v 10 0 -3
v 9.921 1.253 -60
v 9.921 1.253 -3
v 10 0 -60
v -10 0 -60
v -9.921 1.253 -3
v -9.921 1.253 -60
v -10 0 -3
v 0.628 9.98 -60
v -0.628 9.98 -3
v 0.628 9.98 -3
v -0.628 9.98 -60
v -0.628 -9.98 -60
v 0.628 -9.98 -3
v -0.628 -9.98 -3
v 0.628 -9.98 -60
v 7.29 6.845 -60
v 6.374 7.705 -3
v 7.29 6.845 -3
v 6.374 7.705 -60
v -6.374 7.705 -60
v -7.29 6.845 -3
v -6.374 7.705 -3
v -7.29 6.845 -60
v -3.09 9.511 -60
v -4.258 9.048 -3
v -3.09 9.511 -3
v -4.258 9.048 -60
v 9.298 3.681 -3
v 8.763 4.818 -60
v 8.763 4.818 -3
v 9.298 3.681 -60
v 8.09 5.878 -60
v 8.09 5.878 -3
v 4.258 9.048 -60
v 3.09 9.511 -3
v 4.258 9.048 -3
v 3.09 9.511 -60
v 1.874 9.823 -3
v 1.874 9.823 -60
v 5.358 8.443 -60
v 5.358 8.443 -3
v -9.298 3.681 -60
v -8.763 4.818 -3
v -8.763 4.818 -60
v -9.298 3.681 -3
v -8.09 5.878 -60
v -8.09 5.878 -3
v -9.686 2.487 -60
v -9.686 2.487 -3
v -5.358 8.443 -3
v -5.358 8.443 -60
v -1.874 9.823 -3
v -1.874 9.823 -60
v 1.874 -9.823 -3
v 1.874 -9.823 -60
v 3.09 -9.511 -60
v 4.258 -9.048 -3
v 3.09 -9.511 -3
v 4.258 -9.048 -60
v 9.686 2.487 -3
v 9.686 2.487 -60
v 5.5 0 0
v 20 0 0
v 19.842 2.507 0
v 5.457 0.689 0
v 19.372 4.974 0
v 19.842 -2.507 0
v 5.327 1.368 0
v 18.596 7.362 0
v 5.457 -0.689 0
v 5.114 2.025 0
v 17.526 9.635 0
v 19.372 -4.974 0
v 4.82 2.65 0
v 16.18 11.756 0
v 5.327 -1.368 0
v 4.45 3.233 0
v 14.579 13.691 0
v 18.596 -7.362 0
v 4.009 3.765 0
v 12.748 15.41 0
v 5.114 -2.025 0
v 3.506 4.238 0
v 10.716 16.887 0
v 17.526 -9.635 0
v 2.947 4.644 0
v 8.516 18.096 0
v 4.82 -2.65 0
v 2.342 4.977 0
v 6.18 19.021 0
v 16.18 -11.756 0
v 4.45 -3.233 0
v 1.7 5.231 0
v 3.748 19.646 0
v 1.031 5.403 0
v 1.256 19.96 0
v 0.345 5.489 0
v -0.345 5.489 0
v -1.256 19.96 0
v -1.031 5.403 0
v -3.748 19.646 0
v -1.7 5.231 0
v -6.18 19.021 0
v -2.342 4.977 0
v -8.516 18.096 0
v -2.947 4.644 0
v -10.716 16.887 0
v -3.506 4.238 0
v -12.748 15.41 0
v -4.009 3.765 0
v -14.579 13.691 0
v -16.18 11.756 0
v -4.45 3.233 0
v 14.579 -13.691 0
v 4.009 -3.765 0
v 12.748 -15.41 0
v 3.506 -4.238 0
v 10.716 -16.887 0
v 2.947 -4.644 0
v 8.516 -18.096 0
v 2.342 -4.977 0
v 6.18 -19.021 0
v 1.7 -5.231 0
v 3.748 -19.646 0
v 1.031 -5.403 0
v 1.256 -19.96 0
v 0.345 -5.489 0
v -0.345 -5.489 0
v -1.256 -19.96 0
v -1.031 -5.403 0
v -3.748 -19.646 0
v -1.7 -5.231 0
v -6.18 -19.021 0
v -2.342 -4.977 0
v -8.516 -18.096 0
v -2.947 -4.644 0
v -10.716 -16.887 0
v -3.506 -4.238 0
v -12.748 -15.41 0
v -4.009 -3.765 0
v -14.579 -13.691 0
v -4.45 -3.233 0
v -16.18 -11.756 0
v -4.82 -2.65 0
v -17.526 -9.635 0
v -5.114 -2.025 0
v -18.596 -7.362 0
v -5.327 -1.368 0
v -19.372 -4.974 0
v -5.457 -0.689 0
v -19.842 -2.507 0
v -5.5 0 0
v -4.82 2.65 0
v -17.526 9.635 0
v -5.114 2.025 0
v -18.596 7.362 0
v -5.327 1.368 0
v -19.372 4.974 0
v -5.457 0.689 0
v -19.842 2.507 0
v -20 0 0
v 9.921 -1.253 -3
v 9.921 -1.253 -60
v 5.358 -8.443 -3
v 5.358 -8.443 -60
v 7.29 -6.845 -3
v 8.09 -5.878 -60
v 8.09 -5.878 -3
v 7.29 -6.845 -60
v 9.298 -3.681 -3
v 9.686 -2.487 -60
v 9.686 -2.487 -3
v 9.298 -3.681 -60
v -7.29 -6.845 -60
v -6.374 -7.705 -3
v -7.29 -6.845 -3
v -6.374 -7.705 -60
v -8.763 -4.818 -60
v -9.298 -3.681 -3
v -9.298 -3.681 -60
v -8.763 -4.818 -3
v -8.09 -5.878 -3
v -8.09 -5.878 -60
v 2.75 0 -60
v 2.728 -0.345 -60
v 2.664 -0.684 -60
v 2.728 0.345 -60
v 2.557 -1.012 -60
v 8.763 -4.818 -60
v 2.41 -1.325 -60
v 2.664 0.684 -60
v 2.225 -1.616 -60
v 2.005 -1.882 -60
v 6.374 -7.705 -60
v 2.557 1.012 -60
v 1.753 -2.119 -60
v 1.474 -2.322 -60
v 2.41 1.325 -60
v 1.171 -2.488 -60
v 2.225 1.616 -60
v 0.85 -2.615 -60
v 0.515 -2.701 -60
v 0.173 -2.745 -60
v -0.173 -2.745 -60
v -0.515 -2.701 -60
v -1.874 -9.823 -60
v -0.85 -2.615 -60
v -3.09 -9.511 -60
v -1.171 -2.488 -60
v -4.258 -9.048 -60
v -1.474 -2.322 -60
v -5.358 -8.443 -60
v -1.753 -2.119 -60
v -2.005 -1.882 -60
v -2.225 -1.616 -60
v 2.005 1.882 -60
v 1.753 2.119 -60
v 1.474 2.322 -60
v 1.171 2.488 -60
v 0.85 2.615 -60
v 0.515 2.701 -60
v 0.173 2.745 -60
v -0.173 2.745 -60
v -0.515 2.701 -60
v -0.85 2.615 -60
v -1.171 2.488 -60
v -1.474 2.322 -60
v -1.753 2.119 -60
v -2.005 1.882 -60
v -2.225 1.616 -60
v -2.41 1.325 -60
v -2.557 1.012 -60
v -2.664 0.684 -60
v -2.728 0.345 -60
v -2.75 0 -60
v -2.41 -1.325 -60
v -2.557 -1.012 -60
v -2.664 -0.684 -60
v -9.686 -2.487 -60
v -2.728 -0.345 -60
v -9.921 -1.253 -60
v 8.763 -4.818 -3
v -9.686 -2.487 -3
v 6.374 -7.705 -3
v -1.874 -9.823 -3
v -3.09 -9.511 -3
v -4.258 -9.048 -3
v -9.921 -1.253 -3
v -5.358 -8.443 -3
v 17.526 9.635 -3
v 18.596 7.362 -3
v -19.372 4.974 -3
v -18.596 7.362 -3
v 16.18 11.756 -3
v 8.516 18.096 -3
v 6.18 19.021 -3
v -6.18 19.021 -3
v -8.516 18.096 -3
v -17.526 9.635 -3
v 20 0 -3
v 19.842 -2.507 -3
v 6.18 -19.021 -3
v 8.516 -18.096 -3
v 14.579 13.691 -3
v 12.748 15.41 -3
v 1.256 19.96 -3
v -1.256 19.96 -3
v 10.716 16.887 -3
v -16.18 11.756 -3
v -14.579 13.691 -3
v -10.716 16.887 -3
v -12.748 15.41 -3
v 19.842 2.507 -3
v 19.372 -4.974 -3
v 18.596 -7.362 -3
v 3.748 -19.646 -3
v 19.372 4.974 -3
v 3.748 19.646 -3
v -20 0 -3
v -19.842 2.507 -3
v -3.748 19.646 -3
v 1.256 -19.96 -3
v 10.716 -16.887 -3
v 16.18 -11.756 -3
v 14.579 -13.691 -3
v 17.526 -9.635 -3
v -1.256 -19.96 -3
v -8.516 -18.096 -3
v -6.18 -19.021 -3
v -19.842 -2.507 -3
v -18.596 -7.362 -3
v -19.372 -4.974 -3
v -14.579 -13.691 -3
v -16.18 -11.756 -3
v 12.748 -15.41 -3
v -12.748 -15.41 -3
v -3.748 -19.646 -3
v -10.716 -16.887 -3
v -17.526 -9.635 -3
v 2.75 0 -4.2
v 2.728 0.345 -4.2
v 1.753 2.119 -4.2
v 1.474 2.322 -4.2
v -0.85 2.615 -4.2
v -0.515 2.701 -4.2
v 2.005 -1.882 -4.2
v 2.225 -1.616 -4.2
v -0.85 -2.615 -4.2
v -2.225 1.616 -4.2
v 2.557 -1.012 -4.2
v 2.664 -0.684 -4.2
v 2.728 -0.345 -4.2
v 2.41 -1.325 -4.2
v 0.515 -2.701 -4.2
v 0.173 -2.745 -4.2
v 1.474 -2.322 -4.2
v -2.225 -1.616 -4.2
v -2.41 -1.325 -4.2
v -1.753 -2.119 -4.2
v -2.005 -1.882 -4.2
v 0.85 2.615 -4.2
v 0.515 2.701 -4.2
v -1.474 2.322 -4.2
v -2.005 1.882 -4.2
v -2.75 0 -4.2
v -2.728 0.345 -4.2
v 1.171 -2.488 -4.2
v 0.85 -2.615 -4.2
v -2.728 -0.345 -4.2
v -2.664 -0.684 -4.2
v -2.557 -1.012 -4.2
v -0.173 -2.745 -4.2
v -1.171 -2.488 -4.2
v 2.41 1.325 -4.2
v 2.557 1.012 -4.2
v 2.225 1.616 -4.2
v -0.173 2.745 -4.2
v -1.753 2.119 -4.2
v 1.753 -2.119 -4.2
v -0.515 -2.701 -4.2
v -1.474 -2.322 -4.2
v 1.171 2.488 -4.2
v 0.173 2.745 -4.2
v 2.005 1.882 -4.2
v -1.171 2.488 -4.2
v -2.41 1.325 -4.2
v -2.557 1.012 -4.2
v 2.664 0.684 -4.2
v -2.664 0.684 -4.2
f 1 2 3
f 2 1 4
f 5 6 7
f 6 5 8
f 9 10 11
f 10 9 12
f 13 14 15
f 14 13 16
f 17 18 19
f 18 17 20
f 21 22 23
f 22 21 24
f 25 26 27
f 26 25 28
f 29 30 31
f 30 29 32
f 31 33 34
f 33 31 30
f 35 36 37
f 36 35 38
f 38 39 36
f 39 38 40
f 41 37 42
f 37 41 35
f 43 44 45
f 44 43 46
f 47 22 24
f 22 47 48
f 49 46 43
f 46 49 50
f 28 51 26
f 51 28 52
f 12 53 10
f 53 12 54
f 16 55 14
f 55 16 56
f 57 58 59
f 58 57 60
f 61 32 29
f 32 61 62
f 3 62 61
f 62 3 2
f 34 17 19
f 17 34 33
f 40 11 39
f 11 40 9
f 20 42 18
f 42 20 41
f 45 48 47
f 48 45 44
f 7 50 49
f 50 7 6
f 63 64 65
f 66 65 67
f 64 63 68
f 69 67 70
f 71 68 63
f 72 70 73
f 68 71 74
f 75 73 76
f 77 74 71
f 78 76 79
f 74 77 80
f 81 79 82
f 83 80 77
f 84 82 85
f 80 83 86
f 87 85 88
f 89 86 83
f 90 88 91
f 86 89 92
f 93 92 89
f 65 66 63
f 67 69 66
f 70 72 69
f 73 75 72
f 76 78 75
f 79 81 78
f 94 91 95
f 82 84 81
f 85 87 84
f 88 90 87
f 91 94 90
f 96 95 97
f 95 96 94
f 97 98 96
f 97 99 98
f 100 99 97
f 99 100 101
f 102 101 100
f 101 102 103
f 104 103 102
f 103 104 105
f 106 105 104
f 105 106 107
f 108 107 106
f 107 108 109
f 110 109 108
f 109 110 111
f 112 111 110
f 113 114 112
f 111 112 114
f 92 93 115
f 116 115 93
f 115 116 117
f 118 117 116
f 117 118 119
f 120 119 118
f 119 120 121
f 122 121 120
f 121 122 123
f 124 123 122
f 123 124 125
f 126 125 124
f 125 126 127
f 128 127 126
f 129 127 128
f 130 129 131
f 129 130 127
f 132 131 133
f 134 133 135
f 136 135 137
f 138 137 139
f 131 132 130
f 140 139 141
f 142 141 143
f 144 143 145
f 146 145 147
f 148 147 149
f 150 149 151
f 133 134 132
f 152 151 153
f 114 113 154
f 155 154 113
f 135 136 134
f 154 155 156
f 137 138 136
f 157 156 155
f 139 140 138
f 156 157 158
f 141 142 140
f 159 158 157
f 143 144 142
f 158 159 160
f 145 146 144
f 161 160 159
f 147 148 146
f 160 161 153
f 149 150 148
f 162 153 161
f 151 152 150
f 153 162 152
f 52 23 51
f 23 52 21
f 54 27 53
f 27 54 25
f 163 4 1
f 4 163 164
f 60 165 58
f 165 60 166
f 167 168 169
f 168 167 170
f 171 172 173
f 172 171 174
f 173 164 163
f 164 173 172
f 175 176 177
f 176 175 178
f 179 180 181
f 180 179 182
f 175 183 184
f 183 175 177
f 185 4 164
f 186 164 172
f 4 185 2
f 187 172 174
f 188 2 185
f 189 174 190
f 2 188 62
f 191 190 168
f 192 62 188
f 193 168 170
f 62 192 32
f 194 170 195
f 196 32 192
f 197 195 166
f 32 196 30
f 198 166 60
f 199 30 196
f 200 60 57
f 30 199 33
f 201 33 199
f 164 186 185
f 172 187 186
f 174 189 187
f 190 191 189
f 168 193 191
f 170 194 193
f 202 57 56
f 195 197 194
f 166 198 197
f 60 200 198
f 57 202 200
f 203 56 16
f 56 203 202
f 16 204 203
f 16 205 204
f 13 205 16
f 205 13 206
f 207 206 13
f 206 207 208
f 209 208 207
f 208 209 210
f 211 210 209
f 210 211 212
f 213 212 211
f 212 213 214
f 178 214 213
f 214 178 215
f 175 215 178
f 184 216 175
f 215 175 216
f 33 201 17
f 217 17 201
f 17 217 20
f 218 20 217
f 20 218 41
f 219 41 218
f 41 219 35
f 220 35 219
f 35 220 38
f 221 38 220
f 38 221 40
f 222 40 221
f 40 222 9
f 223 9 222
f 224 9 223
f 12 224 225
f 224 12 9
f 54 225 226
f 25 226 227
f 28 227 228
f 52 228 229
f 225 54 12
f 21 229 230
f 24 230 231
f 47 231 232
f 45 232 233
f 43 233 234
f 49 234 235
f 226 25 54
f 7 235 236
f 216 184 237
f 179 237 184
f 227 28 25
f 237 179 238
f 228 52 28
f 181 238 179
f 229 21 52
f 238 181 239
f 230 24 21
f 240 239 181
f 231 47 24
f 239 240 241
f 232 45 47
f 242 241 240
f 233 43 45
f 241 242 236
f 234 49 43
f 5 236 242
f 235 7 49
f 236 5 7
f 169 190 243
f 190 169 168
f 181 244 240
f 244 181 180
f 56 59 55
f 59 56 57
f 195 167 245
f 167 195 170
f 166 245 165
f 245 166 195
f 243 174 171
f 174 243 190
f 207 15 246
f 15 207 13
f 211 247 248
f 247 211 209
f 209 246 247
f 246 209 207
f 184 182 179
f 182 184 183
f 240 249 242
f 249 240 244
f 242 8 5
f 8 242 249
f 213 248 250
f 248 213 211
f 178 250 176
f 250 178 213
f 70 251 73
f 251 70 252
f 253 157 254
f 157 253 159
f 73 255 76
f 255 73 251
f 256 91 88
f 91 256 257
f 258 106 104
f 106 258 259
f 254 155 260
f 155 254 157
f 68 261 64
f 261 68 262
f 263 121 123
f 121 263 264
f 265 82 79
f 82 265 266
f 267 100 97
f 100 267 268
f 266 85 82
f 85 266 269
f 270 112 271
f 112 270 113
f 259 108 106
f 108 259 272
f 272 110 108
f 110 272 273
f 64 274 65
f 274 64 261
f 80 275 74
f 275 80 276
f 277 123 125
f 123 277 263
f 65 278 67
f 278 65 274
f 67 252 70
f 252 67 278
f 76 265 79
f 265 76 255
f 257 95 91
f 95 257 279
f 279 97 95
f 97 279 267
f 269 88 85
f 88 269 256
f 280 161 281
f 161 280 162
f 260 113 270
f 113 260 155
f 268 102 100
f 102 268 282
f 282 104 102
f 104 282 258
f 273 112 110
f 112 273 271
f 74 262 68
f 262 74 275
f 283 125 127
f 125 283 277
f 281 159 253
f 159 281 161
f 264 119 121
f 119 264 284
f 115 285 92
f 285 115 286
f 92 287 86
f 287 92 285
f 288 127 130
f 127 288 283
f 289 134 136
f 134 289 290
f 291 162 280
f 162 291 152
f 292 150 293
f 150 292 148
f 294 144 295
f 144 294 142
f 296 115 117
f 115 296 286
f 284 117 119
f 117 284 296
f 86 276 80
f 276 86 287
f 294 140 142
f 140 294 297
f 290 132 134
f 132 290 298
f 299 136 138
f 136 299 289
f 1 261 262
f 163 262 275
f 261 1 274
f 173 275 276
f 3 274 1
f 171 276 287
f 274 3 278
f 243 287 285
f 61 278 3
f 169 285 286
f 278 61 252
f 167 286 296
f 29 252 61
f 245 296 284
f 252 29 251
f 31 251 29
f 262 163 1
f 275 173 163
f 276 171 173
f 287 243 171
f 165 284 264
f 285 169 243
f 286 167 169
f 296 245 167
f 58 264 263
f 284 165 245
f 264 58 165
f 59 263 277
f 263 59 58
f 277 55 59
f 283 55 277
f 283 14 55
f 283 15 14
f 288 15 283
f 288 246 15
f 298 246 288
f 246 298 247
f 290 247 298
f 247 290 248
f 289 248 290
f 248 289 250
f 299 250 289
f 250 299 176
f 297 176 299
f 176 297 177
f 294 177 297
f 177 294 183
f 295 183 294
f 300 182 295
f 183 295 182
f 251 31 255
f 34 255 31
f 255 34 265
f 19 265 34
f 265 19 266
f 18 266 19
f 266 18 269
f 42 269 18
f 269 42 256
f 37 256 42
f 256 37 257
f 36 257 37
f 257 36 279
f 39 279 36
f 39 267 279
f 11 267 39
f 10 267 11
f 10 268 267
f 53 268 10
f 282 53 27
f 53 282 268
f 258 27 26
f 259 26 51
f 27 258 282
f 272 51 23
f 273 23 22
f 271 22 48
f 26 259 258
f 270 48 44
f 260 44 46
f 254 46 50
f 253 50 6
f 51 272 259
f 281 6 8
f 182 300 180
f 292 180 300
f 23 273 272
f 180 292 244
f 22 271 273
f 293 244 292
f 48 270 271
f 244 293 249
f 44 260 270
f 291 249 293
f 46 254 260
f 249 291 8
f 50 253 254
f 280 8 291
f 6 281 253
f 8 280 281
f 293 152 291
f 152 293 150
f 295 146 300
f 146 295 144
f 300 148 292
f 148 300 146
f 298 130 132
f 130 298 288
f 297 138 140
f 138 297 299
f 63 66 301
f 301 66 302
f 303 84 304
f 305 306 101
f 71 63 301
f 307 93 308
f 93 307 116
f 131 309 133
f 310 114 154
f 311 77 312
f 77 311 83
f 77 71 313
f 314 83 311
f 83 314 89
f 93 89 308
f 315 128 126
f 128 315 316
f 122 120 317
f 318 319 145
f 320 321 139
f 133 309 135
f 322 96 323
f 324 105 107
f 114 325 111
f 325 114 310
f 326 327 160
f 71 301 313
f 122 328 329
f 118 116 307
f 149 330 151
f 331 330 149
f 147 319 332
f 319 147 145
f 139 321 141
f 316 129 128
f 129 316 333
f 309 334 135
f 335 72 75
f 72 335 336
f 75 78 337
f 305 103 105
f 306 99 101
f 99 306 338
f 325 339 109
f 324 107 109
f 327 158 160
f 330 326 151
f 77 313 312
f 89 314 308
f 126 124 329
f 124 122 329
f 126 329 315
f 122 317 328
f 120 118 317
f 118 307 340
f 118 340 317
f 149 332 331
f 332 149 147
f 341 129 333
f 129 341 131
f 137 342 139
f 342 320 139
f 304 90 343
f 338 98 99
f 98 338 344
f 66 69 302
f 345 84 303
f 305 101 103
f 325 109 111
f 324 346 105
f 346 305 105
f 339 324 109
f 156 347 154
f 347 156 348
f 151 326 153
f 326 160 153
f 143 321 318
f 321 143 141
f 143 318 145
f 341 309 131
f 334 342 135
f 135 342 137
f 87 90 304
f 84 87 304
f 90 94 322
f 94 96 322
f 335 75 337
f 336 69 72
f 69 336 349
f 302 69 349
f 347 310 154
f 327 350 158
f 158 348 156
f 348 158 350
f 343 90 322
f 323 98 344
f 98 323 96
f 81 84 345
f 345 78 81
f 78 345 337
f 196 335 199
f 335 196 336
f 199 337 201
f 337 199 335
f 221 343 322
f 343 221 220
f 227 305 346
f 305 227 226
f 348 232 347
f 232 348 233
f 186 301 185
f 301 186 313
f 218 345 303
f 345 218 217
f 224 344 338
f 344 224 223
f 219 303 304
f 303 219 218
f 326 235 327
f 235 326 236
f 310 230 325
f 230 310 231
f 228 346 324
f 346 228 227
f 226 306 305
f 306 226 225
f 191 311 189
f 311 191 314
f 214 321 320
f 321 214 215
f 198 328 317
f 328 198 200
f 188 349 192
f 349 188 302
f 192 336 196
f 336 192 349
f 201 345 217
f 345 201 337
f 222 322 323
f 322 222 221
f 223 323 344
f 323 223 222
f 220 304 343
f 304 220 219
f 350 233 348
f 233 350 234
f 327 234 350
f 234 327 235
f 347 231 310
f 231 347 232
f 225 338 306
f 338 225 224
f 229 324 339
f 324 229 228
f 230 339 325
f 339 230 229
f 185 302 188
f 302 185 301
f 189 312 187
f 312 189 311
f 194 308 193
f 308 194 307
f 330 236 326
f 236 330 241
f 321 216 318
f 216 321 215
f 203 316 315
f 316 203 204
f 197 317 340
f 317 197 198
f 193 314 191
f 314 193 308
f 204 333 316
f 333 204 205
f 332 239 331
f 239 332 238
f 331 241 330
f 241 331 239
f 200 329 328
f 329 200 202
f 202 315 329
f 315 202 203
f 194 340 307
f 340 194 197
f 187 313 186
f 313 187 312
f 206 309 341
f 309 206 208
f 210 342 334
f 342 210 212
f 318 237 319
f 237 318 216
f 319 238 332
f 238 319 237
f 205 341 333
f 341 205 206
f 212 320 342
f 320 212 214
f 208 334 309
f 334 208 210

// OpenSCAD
$fn = 50;


difference() {
	union() {
		translate(v = [0, 0, -60.0000000000]) {
			cylinder(h = 60, r = 10.0000000000);
		}
		translate(v = [0, 0, -3.0000000000]) {
			cylinder(h = 3, r = 20.0000000000);
		}
	}
	union() {
		translate(v = [0, 0, 0]) {
			rotate(a = [0, 0, 0]) {
				difference() {
					union() {
						#translate(v = [0, 0, -60.0000000000]) {
							cylinder(h = 60, r = 2.2500000000);
						}
						#translate(v = [0, 0, -4.2000000000]) {
							cylinder(h = 4.2000000000, r1 = 2.7500000000, r2 = 5.5000000000);
						}
						#translate(v = [0, 0, -60.0000000000]) {
							cylinder(h = 60, r = 2.7500000000);
						}
						#translate(v = [0, 0, -60.0000000000]) {
							cylinder(h = 60, r = 2.2500000000);
						}
					}
					union();
				}
			}
		}
	}
}
